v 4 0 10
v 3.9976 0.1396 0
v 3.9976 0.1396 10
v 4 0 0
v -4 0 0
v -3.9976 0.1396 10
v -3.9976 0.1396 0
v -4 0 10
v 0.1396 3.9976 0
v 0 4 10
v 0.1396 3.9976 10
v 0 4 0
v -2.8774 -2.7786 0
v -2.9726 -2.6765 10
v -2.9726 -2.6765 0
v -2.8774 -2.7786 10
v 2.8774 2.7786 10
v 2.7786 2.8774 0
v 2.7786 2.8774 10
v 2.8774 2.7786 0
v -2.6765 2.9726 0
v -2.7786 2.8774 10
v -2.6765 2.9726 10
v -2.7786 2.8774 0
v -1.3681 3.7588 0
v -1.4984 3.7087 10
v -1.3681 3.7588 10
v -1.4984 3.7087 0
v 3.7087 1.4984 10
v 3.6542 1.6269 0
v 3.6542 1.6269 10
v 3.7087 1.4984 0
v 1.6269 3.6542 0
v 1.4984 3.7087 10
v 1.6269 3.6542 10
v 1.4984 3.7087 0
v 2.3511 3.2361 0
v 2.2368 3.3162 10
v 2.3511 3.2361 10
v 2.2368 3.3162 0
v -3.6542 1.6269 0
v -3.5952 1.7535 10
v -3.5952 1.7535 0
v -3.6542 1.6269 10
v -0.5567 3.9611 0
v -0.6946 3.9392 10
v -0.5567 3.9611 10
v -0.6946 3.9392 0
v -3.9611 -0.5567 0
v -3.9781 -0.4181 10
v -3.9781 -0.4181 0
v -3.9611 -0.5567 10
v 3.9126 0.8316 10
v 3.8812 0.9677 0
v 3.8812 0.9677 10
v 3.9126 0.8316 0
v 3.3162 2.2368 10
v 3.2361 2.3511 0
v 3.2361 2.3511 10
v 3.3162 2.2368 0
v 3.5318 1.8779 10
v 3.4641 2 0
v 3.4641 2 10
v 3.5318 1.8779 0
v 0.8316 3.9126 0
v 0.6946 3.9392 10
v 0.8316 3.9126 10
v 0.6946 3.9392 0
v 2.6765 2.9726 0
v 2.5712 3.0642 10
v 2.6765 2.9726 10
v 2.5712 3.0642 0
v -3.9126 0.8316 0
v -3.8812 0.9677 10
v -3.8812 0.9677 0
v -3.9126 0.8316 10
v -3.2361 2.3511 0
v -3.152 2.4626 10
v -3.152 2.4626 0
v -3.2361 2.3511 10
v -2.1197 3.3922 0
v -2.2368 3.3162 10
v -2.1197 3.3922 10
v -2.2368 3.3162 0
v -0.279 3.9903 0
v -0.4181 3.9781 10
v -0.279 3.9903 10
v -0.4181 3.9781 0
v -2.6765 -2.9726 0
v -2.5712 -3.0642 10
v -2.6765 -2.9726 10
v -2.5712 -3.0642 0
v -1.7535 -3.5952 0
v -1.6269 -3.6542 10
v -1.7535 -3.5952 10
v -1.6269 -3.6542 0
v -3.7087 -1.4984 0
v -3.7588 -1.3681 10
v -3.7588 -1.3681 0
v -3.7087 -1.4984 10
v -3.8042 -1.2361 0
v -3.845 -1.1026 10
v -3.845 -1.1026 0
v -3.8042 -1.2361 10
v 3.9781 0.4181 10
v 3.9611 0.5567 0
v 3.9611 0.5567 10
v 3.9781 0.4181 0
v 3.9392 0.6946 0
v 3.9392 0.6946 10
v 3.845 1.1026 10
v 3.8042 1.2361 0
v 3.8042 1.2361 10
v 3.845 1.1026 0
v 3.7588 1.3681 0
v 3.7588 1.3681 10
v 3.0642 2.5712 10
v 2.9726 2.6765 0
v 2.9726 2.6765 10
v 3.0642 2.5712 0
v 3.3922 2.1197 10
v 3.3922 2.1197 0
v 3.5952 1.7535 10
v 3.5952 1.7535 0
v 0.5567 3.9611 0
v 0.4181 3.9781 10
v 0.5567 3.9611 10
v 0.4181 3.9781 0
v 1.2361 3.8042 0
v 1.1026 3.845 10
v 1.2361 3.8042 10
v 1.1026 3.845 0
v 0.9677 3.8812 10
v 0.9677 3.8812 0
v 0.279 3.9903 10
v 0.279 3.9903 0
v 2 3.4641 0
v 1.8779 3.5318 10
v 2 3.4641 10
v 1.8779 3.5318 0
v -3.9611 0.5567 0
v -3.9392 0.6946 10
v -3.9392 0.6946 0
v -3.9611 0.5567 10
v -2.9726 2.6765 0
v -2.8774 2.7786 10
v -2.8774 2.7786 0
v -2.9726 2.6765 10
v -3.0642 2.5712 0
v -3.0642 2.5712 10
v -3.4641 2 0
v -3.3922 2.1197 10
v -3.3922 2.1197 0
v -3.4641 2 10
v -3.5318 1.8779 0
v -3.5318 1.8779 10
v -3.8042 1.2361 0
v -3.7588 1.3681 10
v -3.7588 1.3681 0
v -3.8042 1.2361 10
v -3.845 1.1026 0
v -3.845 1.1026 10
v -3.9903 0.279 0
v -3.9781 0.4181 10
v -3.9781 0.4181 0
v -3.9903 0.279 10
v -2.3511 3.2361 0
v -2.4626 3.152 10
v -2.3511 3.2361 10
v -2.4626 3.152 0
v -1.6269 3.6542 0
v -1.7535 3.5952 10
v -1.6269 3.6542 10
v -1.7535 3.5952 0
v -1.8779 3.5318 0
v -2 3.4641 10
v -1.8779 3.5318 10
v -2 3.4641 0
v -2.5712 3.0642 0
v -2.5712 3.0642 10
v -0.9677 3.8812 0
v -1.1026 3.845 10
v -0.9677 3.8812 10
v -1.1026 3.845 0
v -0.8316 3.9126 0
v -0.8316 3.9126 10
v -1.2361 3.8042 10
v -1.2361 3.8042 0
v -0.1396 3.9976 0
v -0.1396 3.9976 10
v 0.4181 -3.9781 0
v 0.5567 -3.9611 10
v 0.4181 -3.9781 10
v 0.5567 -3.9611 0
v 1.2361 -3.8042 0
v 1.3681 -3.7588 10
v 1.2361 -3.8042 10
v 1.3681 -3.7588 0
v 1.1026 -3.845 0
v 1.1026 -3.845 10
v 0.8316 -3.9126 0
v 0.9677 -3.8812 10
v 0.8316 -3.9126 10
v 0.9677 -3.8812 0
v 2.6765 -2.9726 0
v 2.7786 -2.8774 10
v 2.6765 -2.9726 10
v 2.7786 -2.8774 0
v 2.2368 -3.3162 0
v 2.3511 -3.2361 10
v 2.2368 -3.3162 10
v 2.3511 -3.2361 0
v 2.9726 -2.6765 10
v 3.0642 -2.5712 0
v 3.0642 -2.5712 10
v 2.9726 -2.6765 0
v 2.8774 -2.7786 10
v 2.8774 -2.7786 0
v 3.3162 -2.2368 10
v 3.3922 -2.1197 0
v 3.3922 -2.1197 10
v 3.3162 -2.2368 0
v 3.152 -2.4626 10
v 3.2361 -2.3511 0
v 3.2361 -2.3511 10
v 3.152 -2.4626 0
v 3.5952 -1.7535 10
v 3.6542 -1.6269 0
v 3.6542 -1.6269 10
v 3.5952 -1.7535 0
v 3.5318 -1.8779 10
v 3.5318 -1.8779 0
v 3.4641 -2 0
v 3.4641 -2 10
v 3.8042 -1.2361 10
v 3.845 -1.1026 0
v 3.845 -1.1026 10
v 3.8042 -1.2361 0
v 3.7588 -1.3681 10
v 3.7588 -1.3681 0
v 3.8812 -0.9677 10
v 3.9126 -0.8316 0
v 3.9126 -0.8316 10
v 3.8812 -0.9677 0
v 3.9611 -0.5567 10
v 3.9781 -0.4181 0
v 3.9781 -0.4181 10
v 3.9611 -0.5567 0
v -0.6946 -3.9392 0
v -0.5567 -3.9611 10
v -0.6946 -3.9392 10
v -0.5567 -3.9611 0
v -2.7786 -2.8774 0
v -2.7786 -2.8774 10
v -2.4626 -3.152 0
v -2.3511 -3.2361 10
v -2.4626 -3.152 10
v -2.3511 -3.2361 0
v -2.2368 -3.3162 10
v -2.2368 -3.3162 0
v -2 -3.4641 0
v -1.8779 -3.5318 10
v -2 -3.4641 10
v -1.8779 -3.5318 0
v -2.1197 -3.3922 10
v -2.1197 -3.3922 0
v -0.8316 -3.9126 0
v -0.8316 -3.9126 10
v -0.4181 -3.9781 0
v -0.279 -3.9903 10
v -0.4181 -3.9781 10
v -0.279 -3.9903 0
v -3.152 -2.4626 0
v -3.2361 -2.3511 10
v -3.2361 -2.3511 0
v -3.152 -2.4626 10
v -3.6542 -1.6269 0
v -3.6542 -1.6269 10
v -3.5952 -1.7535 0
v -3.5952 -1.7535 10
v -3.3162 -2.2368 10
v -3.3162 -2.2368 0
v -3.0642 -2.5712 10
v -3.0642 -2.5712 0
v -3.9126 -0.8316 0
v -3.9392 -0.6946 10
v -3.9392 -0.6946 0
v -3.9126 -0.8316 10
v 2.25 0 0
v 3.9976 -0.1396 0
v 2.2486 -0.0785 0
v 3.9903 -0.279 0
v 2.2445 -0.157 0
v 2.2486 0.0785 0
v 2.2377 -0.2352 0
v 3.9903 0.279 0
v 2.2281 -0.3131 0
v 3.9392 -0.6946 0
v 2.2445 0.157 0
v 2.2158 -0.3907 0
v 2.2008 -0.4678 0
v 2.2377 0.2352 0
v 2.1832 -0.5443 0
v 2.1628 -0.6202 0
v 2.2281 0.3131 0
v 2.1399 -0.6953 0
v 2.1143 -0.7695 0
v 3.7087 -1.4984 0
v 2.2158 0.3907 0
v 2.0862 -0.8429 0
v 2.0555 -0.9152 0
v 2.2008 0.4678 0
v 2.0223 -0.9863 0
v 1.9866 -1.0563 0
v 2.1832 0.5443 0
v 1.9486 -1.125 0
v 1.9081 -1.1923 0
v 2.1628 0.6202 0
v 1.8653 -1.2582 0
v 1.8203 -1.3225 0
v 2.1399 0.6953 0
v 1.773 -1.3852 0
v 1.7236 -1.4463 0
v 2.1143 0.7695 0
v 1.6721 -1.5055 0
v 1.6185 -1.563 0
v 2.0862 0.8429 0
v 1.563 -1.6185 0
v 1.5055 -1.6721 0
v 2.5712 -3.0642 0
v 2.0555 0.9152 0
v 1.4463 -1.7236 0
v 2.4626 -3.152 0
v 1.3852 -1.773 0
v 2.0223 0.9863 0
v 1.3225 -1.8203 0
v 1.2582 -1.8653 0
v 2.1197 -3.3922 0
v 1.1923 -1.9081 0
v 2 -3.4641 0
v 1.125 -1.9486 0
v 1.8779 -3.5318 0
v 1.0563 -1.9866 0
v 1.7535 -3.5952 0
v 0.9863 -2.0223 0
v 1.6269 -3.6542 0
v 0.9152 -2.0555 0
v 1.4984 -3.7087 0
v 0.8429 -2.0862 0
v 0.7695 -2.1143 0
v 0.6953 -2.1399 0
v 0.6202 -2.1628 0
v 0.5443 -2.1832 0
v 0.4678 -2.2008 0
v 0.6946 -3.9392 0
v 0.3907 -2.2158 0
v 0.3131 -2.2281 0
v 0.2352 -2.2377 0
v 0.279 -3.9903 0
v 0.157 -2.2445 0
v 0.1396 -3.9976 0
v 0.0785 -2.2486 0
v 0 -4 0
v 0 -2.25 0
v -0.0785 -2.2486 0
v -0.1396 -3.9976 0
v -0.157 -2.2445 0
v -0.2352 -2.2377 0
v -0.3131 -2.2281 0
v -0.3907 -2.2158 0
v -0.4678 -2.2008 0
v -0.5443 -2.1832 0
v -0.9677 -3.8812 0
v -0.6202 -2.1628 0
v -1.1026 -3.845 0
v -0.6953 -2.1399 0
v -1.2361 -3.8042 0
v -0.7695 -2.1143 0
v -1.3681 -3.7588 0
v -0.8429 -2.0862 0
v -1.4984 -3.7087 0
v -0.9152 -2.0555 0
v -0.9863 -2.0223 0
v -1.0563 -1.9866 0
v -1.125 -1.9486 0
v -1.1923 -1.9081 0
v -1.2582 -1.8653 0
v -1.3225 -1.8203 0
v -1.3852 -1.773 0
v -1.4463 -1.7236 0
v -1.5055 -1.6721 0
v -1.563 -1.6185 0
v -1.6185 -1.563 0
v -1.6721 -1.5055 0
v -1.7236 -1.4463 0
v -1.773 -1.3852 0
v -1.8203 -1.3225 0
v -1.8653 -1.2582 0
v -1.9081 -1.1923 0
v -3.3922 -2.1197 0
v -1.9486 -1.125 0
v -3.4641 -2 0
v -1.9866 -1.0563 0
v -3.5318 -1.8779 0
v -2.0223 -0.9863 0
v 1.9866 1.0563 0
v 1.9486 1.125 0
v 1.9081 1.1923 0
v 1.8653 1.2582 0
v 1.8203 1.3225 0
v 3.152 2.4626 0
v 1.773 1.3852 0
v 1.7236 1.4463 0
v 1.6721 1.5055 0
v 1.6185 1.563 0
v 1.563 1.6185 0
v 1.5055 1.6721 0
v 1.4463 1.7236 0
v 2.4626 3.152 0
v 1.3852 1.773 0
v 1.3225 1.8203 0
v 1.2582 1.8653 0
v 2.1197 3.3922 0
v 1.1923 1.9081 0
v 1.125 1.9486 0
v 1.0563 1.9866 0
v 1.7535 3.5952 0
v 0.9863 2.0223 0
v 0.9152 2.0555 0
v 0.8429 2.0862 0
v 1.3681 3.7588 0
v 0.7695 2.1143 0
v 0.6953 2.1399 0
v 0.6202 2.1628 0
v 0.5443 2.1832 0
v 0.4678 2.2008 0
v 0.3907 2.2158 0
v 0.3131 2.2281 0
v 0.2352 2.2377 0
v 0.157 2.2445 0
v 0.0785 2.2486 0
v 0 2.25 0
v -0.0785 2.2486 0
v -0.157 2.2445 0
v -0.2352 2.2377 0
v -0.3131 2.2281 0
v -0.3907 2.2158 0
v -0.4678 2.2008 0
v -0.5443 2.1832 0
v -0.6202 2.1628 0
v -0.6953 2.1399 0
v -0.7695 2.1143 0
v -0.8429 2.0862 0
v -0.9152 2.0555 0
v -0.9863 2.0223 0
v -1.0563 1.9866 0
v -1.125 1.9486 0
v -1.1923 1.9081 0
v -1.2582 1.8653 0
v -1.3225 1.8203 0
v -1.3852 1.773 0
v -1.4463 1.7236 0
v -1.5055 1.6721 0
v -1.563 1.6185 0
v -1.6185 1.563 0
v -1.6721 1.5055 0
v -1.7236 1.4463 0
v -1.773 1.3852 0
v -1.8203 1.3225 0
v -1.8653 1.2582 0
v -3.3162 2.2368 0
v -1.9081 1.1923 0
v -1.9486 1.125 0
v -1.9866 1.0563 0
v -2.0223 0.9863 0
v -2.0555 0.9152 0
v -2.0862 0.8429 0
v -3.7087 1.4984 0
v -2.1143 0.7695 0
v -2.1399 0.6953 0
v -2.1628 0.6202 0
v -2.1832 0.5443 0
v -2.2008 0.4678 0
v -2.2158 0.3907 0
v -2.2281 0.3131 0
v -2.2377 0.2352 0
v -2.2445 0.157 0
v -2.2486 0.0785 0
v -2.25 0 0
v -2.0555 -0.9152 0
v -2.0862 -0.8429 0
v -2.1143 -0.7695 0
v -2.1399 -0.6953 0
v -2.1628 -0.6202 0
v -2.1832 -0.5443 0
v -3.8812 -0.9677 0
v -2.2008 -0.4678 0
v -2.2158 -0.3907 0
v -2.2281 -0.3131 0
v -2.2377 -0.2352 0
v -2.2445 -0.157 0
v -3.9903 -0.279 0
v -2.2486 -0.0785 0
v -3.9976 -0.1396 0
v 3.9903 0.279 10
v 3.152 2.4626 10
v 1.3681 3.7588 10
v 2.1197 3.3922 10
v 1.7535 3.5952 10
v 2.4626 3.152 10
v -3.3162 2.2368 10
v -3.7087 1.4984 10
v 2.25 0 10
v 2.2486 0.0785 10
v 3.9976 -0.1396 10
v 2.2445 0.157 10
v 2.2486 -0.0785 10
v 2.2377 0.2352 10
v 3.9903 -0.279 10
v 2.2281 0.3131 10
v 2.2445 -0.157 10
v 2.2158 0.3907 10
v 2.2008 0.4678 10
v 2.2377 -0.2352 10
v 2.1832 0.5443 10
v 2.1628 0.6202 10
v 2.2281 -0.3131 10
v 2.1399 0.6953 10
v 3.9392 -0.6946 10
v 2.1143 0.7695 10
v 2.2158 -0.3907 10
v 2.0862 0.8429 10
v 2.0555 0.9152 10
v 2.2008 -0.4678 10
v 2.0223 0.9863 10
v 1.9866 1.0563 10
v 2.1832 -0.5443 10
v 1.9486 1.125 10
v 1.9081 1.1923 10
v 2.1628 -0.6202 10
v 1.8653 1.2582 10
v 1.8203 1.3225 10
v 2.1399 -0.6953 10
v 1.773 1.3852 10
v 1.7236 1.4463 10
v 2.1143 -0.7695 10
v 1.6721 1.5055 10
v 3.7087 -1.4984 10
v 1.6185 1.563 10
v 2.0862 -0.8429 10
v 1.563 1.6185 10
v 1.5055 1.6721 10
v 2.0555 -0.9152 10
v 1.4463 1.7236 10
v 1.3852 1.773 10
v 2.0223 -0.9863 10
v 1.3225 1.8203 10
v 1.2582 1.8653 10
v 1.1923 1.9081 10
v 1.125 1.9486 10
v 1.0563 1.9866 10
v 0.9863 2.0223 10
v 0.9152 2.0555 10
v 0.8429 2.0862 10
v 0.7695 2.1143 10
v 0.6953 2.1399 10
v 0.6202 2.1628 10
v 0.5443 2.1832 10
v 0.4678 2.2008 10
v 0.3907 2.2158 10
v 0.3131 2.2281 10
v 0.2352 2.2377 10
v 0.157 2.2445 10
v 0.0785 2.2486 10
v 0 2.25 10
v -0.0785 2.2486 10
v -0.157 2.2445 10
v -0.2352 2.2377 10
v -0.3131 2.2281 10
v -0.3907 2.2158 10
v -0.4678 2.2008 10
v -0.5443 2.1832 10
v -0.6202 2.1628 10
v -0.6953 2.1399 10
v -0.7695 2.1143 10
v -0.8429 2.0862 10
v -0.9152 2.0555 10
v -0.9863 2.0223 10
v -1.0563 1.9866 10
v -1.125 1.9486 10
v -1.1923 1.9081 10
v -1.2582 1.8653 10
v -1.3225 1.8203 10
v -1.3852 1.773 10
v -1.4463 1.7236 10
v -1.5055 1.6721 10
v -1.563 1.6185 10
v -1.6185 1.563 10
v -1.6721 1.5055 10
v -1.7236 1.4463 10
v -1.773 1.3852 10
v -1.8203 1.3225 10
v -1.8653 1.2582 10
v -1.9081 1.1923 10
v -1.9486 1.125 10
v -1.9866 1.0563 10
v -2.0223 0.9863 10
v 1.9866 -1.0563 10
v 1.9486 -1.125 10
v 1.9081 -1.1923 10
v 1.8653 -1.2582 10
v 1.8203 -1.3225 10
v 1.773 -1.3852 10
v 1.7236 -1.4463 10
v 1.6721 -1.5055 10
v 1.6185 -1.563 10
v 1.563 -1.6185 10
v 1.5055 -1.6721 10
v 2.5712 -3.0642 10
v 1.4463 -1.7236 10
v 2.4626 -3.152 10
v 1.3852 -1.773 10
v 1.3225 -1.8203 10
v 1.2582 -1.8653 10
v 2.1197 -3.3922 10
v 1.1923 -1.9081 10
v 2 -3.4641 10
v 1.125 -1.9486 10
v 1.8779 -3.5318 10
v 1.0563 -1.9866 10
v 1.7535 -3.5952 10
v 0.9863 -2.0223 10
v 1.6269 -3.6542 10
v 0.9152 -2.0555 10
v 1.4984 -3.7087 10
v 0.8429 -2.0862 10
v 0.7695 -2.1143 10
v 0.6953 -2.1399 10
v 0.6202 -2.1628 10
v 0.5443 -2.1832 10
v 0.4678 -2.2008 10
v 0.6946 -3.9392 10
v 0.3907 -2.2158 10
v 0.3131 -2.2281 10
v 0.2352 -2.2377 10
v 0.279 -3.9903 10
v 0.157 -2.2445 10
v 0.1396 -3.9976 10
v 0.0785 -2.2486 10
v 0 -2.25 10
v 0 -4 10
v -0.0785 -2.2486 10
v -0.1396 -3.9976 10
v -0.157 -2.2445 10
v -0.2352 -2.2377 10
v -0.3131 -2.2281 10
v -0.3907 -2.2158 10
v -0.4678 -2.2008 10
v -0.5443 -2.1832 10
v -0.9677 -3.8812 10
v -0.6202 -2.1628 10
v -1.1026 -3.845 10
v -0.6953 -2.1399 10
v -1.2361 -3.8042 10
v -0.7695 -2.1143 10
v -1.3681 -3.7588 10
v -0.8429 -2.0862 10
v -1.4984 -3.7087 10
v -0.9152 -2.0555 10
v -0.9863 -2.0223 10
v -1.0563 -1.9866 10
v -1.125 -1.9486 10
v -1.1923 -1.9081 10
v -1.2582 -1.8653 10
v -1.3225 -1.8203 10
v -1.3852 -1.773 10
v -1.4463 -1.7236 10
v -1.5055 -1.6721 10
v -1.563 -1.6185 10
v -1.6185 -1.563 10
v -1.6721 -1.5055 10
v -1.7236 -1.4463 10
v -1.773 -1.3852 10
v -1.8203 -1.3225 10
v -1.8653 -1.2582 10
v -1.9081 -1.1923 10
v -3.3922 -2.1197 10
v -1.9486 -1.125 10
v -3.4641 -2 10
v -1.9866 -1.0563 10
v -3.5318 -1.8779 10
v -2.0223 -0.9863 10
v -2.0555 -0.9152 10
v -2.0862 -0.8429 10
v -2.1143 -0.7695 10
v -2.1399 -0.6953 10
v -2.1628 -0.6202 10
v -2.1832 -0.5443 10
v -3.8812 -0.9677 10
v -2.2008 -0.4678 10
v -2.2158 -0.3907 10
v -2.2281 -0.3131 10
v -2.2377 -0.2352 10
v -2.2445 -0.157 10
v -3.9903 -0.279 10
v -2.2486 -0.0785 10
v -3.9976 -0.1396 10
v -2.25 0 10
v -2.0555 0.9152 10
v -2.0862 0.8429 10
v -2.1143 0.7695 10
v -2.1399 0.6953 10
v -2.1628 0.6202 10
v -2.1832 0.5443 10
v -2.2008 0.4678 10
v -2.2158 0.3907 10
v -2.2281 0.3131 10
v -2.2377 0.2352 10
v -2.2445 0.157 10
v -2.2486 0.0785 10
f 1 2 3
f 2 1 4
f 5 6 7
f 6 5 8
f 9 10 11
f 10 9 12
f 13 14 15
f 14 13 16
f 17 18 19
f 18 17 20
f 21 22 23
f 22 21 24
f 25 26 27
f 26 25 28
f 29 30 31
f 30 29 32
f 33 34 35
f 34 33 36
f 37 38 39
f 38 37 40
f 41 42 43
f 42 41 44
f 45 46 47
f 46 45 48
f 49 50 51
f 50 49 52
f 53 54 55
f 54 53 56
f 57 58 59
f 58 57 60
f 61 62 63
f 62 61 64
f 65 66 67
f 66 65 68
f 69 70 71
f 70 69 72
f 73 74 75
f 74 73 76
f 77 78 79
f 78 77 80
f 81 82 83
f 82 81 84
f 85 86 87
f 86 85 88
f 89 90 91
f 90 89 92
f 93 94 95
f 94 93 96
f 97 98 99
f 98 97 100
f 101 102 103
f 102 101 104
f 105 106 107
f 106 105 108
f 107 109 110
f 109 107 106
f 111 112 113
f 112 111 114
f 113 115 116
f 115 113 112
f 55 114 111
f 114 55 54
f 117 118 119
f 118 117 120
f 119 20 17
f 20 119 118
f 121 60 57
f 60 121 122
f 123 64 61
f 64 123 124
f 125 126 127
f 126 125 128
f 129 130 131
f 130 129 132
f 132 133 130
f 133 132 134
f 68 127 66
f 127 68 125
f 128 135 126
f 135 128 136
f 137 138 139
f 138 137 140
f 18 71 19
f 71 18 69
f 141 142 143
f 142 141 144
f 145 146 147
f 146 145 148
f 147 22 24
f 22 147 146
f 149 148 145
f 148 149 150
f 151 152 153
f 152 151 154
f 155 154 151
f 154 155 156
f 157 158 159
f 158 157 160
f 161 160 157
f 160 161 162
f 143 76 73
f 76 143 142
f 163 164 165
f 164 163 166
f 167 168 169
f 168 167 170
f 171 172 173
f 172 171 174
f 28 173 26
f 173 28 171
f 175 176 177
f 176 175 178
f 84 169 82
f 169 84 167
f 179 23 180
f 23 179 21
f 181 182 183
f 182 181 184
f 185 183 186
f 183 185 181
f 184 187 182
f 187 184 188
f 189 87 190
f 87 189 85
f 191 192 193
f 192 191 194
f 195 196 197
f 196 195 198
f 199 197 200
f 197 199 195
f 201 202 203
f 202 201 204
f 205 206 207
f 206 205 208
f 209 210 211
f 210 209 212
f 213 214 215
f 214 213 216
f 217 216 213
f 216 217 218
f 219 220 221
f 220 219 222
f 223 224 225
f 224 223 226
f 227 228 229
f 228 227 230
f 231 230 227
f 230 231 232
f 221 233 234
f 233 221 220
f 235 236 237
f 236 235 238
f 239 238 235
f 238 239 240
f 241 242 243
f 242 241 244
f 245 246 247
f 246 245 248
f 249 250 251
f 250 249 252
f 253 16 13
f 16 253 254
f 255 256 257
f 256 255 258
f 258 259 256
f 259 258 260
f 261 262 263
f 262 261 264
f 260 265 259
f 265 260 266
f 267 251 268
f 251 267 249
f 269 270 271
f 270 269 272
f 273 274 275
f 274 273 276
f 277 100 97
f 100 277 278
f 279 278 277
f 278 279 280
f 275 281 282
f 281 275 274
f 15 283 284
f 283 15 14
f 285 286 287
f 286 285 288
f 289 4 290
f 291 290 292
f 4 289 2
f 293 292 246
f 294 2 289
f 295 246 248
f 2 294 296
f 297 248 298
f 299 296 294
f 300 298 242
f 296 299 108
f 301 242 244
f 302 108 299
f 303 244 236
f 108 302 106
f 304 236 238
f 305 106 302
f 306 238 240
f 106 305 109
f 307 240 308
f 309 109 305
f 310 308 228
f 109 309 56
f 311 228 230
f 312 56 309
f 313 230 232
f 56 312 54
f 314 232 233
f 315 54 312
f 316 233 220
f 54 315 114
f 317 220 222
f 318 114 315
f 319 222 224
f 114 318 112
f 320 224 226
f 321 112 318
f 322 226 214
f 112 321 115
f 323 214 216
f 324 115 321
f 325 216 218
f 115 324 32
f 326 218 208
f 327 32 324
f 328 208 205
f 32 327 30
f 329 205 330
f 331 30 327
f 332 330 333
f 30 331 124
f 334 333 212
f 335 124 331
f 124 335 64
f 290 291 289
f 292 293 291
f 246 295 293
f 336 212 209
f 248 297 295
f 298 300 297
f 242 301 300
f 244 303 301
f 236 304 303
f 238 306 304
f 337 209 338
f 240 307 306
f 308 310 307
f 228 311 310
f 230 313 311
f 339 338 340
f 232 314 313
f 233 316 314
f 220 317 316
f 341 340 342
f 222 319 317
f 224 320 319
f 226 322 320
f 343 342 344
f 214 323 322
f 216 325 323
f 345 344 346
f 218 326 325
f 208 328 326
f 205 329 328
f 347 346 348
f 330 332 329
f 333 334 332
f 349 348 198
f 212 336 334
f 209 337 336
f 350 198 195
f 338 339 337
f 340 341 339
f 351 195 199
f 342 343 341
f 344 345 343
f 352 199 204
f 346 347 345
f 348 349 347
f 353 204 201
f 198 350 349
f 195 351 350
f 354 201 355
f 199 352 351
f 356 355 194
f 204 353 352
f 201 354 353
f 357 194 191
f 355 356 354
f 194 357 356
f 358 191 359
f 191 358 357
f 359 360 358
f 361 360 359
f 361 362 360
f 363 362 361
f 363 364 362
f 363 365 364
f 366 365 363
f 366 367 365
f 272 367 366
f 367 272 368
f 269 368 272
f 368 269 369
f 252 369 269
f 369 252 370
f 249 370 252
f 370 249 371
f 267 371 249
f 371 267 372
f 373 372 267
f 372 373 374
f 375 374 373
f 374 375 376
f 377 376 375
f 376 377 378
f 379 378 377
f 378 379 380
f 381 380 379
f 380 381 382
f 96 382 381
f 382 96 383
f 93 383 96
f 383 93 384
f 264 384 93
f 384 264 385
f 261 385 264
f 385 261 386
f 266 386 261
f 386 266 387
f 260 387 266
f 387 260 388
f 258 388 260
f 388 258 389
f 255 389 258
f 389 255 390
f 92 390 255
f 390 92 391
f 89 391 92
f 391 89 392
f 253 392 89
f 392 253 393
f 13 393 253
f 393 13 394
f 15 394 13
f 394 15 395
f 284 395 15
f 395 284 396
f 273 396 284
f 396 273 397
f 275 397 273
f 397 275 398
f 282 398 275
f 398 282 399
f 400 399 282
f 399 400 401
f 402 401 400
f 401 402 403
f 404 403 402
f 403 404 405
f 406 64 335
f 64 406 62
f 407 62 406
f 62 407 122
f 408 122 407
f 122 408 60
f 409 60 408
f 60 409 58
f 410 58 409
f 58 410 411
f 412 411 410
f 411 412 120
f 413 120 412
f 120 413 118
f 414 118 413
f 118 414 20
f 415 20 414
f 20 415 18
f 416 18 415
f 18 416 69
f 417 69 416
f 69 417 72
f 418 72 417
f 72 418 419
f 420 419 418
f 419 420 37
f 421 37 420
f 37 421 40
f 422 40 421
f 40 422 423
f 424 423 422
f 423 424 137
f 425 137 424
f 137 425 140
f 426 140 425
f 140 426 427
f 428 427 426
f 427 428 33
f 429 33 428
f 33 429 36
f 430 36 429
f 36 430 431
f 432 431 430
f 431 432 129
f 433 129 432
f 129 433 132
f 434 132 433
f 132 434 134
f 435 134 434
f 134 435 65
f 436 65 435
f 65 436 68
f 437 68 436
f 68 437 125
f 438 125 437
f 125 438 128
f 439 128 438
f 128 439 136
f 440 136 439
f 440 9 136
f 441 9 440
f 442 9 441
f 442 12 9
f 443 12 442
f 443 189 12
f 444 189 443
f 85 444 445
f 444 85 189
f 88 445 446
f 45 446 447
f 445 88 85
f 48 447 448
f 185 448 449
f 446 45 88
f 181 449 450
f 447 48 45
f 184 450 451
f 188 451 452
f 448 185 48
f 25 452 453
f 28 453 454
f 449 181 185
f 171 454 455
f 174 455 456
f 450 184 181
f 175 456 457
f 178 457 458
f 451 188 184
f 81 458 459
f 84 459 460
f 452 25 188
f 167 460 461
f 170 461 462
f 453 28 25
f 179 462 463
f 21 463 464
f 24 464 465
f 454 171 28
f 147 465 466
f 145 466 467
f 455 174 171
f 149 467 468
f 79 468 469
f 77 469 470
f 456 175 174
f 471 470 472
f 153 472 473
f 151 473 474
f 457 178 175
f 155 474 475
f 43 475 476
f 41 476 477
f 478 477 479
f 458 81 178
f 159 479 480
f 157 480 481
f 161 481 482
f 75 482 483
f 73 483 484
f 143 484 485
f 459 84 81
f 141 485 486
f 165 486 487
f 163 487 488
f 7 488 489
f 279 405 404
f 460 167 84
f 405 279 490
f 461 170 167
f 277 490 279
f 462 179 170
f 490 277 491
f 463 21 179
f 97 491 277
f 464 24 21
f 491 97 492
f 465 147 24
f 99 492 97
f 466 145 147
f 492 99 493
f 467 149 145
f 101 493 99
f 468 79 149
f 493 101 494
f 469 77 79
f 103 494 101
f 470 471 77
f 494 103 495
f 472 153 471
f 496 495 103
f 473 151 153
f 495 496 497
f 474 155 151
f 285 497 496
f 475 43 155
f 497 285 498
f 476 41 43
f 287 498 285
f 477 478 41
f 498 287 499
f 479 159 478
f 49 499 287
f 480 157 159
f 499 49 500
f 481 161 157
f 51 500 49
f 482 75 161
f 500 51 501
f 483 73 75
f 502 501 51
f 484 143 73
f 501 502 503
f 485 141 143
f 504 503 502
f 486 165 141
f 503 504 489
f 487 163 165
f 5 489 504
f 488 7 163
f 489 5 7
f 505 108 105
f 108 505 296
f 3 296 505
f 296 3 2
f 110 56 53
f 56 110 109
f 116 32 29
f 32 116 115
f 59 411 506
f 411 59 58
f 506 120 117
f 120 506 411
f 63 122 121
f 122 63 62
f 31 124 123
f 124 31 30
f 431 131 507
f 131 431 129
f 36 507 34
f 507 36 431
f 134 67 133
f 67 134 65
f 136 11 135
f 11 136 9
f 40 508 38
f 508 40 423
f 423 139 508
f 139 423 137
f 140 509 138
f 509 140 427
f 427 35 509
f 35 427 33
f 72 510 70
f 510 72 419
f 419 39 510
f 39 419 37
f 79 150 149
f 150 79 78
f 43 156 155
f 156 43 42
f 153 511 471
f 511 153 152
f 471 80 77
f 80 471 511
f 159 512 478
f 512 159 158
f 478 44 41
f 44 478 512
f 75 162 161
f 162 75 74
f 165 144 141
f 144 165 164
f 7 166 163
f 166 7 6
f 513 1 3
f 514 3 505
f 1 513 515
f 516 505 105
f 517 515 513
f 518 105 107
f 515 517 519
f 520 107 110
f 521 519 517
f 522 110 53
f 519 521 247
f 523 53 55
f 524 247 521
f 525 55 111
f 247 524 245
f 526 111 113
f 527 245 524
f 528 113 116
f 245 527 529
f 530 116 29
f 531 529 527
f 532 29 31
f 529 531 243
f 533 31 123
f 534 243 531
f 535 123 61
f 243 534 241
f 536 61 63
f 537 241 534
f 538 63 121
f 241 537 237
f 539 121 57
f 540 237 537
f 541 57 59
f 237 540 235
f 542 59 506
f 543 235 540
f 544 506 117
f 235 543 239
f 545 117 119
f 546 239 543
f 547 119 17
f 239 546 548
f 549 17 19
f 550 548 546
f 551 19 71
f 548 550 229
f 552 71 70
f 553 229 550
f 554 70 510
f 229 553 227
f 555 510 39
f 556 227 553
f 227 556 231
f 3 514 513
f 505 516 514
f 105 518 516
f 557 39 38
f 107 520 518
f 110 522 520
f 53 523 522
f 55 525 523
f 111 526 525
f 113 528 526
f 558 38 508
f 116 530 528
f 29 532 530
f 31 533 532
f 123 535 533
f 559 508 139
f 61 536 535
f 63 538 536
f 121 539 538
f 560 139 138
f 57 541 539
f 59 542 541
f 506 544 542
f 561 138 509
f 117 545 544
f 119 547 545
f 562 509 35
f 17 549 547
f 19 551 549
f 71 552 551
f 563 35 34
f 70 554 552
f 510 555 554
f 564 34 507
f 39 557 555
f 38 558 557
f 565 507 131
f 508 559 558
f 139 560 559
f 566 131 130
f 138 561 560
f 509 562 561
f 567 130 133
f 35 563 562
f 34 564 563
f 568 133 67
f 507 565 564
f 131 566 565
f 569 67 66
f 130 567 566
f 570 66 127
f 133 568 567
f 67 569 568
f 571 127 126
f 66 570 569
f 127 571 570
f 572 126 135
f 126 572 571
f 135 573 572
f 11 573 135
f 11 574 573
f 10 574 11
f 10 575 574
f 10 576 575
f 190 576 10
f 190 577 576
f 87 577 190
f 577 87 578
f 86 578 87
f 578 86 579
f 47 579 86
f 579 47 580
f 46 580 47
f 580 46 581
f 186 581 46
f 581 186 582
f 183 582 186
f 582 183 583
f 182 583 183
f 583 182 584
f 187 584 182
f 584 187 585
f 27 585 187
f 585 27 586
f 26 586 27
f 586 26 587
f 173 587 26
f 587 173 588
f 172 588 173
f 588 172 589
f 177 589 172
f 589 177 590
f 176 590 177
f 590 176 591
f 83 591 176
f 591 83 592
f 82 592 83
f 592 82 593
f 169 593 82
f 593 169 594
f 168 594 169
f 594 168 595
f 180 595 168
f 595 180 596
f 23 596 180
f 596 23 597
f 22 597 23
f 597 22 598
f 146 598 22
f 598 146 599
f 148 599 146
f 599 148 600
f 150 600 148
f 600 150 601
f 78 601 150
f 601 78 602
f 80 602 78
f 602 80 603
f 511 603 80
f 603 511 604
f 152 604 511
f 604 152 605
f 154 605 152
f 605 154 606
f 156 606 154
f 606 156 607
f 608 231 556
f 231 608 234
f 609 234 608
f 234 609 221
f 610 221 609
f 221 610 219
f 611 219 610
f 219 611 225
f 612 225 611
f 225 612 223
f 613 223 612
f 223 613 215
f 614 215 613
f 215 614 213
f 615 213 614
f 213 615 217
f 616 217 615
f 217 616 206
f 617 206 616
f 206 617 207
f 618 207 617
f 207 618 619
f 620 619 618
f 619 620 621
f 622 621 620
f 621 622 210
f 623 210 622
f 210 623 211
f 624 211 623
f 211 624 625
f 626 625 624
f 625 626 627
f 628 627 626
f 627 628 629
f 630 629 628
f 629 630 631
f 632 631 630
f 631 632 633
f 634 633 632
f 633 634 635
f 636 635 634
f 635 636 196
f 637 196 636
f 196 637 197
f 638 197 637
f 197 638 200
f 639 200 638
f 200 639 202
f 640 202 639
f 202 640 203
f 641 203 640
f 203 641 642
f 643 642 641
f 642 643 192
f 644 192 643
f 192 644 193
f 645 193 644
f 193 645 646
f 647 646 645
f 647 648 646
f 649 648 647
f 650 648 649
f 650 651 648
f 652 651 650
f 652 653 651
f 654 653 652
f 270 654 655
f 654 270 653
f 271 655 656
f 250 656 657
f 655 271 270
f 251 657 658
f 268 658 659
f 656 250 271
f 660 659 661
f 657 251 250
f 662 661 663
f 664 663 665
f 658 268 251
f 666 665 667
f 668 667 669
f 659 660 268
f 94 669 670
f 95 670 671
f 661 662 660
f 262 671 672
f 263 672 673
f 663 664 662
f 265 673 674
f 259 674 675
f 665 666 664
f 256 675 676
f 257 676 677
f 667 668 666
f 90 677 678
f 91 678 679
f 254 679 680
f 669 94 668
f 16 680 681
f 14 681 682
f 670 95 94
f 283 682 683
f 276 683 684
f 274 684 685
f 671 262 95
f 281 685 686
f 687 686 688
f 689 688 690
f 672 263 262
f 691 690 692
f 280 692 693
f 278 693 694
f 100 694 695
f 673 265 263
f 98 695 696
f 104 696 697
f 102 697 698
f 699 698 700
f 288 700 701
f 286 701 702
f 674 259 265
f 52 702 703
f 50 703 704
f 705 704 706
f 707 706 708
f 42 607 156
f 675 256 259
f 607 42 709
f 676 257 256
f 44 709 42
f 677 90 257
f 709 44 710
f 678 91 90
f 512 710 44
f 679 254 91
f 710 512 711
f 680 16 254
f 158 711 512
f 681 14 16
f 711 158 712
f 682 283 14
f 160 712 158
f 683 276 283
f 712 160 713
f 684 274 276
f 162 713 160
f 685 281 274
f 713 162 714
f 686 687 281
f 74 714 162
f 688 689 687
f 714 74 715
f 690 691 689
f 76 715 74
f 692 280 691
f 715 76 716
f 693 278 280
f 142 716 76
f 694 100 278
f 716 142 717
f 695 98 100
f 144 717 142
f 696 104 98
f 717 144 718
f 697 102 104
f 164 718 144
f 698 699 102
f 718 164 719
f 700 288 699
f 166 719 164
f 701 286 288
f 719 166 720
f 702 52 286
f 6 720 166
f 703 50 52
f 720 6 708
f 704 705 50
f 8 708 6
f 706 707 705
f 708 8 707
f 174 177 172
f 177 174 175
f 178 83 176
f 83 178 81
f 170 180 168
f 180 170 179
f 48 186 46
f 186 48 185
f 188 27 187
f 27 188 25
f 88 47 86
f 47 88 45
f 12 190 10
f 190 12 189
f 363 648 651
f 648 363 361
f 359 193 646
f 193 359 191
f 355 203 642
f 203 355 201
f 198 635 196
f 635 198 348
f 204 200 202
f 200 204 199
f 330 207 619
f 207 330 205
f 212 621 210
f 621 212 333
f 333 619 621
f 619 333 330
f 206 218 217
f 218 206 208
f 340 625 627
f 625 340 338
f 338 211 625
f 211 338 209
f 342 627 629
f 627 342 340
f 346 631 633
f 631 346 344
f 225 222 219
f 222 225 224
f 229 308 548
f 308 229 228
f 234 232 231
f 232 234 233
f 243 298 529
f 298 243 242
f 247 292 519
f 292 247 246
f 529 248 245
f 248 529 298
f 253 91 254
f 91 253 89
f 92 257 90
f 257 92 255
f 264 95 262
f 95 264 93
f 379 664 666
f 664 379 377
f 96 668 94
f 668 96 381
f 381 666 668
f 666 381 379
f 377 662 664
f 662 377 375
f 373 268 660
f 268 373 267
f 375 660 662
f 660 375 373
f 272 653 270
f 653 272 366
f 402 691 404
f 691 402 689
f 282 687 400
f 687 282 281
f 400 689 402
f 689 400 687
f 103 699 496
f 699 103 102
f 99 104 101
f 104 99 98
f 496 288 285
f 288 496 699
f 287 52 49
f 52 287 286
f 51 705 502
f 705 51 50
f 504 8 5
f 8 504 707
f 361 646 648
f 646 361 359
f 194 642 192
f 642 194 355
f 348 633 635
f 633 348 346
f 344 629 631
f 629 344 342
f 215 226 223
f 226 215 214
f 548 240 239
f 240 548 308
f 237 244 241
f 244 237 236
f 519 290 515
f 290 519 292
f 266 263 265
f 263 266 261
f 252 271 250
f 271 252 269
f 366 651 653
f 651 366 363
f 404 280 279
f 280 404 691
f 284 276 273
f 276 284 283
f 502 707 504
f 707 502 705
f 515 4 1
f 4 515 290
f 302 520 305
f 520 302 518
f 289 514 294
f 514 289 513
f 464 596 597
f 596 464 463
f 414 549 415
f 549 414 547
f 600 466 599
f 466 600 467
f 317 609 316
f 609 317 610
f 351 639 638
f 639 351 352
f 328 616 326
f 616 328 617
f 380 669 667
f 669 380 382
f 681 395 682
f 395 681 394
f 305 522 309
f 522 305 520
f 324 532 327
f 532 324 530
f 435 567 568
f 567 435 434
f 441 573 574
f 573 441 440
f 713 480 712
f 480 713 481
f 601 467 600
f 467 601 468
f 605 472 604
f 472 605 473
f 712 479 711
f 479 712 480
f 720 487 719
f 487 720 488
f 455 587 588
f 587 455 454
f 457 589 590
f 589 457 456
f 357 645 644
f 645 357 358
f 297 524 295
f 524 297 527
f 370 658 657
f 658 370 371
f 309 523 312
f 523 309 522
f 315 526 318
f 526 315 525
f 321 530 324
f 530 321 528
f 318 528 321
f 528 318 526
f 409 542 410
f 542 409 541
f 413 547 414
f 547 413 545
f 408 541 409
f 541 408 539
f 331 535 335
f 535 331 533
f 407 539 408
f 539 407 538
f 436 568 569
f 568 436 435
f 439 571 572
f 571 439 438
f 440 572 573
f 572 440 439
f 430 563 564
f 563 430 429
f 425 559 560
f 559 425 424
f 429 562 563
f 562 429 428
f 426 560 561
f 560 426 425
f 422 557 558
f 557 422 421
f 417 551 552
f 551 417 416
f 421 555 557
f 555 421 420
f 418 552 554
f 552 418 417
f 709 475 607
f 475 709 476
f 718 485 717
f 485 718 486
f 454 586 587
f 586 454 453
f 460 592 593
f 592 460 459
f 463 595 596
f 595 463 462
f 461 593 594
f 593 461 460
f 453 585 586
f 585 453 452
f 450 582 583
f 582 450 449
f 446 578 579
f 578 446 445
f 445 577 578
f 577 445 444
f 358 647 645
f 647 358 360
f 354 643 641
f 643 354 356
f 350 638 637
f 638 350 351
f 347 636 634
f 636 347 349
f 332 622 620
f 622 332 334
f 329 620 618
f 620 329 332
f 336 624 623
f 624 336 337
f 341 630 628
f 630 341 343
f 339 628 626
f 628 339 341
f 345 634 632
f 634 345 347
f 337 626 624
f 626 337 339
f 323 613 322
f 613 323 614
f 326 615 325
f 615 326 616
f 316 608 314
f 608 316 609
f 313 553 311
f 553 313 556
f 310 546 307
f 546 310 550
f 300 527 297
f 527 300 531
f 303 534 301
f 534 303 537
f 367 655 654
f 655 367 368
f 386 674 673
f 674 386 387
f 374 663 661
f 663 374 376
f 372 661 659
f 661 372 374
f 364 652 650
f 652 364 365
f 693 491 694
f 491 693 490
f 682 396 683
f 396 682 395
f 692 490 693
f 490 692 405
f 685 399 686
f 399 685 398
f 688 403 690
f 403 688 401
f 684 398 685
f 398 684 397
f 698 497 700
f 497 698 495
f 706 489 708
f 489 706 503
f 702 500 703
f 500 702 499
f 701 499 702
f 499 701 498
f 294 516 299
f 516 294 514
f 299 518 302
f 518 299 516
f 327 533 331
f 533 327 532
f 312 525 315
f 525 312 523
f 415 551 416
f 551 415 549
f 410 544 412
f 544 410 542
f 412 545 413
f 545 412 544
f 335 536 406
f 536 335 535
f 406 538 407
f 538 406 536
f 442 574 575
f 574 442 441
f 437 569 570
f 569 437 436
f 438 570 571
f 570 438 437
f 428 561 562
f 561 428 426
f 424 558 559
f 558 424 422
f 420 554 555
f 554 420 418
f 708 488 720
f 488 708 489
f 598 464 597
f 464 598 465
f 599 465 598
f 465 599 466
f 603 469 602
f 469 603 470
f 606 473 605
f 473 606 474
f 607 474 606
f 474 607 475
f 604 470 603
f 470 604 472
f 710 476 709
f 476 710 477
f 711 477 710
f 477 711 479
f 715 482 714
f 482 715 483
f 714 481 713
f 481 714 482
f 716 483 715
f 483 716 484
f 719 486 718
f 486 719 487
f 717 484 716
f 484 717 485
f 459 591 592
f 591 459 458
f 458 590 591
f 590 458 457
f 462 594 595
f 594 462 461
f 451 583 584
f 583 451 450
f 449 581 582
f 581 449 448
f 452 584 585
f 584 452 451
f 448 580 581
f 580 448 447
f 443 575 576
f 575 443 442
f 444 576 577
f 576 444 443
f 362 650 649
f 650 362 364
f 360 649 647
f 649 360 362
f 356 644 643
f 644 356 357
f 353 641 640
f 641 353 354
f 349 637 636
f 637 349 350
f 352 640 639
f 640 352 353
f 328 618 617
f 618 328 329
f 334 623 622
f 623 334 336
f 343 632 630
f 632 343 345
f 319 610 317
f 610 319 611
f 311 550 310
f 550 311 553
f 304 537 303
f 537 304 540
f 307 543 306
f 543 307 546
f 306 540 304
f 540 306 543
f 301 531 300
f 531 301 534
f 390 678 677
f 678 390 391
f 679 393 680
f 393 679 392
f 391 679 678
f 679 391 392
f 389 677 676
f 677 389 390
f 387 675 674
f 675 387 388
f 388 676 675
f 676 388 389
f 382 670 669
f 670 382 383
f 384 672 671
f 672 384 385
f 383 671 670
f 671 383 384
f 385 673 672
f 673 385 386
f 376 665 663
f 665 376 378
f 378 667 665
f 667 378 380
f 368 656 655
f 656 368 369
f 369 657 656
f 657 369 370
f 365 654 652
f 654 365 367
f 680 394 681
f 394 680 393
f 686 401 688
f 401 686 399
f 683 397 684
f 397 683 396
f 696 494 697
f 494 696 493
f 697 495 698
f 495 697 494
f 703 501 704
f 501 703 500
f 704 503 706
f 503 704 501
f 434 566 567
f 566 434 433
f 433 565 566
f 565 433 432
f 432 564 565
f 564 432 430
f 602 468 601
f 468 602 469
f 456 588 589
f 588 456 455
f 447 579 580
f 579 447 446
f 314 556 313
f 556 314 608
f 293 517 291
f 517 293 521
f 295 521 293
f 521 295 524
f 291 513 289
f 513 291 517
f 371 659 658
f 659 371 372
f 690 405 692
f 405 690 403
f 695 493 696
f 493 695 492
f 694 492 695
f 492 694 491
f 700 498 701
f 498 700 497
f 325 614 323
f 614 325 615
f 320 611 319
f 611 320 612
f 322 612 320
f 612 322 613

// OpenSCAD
// Spacer for Lid to upside down lid.
// to allow for an up-side-down lid to be mounted on top for tool storage.

// 70mm M4 bolt.
// 65mm thread (excludes head/nut space).
// 60mm (2x2.5mm thickness for lids)
height = 10;

$fn=180;

difference() {
    union() {
        cylinder(d=8, h=height);
    }
    union() {
        cylinder(d=4.5, h=height);
    }
}
